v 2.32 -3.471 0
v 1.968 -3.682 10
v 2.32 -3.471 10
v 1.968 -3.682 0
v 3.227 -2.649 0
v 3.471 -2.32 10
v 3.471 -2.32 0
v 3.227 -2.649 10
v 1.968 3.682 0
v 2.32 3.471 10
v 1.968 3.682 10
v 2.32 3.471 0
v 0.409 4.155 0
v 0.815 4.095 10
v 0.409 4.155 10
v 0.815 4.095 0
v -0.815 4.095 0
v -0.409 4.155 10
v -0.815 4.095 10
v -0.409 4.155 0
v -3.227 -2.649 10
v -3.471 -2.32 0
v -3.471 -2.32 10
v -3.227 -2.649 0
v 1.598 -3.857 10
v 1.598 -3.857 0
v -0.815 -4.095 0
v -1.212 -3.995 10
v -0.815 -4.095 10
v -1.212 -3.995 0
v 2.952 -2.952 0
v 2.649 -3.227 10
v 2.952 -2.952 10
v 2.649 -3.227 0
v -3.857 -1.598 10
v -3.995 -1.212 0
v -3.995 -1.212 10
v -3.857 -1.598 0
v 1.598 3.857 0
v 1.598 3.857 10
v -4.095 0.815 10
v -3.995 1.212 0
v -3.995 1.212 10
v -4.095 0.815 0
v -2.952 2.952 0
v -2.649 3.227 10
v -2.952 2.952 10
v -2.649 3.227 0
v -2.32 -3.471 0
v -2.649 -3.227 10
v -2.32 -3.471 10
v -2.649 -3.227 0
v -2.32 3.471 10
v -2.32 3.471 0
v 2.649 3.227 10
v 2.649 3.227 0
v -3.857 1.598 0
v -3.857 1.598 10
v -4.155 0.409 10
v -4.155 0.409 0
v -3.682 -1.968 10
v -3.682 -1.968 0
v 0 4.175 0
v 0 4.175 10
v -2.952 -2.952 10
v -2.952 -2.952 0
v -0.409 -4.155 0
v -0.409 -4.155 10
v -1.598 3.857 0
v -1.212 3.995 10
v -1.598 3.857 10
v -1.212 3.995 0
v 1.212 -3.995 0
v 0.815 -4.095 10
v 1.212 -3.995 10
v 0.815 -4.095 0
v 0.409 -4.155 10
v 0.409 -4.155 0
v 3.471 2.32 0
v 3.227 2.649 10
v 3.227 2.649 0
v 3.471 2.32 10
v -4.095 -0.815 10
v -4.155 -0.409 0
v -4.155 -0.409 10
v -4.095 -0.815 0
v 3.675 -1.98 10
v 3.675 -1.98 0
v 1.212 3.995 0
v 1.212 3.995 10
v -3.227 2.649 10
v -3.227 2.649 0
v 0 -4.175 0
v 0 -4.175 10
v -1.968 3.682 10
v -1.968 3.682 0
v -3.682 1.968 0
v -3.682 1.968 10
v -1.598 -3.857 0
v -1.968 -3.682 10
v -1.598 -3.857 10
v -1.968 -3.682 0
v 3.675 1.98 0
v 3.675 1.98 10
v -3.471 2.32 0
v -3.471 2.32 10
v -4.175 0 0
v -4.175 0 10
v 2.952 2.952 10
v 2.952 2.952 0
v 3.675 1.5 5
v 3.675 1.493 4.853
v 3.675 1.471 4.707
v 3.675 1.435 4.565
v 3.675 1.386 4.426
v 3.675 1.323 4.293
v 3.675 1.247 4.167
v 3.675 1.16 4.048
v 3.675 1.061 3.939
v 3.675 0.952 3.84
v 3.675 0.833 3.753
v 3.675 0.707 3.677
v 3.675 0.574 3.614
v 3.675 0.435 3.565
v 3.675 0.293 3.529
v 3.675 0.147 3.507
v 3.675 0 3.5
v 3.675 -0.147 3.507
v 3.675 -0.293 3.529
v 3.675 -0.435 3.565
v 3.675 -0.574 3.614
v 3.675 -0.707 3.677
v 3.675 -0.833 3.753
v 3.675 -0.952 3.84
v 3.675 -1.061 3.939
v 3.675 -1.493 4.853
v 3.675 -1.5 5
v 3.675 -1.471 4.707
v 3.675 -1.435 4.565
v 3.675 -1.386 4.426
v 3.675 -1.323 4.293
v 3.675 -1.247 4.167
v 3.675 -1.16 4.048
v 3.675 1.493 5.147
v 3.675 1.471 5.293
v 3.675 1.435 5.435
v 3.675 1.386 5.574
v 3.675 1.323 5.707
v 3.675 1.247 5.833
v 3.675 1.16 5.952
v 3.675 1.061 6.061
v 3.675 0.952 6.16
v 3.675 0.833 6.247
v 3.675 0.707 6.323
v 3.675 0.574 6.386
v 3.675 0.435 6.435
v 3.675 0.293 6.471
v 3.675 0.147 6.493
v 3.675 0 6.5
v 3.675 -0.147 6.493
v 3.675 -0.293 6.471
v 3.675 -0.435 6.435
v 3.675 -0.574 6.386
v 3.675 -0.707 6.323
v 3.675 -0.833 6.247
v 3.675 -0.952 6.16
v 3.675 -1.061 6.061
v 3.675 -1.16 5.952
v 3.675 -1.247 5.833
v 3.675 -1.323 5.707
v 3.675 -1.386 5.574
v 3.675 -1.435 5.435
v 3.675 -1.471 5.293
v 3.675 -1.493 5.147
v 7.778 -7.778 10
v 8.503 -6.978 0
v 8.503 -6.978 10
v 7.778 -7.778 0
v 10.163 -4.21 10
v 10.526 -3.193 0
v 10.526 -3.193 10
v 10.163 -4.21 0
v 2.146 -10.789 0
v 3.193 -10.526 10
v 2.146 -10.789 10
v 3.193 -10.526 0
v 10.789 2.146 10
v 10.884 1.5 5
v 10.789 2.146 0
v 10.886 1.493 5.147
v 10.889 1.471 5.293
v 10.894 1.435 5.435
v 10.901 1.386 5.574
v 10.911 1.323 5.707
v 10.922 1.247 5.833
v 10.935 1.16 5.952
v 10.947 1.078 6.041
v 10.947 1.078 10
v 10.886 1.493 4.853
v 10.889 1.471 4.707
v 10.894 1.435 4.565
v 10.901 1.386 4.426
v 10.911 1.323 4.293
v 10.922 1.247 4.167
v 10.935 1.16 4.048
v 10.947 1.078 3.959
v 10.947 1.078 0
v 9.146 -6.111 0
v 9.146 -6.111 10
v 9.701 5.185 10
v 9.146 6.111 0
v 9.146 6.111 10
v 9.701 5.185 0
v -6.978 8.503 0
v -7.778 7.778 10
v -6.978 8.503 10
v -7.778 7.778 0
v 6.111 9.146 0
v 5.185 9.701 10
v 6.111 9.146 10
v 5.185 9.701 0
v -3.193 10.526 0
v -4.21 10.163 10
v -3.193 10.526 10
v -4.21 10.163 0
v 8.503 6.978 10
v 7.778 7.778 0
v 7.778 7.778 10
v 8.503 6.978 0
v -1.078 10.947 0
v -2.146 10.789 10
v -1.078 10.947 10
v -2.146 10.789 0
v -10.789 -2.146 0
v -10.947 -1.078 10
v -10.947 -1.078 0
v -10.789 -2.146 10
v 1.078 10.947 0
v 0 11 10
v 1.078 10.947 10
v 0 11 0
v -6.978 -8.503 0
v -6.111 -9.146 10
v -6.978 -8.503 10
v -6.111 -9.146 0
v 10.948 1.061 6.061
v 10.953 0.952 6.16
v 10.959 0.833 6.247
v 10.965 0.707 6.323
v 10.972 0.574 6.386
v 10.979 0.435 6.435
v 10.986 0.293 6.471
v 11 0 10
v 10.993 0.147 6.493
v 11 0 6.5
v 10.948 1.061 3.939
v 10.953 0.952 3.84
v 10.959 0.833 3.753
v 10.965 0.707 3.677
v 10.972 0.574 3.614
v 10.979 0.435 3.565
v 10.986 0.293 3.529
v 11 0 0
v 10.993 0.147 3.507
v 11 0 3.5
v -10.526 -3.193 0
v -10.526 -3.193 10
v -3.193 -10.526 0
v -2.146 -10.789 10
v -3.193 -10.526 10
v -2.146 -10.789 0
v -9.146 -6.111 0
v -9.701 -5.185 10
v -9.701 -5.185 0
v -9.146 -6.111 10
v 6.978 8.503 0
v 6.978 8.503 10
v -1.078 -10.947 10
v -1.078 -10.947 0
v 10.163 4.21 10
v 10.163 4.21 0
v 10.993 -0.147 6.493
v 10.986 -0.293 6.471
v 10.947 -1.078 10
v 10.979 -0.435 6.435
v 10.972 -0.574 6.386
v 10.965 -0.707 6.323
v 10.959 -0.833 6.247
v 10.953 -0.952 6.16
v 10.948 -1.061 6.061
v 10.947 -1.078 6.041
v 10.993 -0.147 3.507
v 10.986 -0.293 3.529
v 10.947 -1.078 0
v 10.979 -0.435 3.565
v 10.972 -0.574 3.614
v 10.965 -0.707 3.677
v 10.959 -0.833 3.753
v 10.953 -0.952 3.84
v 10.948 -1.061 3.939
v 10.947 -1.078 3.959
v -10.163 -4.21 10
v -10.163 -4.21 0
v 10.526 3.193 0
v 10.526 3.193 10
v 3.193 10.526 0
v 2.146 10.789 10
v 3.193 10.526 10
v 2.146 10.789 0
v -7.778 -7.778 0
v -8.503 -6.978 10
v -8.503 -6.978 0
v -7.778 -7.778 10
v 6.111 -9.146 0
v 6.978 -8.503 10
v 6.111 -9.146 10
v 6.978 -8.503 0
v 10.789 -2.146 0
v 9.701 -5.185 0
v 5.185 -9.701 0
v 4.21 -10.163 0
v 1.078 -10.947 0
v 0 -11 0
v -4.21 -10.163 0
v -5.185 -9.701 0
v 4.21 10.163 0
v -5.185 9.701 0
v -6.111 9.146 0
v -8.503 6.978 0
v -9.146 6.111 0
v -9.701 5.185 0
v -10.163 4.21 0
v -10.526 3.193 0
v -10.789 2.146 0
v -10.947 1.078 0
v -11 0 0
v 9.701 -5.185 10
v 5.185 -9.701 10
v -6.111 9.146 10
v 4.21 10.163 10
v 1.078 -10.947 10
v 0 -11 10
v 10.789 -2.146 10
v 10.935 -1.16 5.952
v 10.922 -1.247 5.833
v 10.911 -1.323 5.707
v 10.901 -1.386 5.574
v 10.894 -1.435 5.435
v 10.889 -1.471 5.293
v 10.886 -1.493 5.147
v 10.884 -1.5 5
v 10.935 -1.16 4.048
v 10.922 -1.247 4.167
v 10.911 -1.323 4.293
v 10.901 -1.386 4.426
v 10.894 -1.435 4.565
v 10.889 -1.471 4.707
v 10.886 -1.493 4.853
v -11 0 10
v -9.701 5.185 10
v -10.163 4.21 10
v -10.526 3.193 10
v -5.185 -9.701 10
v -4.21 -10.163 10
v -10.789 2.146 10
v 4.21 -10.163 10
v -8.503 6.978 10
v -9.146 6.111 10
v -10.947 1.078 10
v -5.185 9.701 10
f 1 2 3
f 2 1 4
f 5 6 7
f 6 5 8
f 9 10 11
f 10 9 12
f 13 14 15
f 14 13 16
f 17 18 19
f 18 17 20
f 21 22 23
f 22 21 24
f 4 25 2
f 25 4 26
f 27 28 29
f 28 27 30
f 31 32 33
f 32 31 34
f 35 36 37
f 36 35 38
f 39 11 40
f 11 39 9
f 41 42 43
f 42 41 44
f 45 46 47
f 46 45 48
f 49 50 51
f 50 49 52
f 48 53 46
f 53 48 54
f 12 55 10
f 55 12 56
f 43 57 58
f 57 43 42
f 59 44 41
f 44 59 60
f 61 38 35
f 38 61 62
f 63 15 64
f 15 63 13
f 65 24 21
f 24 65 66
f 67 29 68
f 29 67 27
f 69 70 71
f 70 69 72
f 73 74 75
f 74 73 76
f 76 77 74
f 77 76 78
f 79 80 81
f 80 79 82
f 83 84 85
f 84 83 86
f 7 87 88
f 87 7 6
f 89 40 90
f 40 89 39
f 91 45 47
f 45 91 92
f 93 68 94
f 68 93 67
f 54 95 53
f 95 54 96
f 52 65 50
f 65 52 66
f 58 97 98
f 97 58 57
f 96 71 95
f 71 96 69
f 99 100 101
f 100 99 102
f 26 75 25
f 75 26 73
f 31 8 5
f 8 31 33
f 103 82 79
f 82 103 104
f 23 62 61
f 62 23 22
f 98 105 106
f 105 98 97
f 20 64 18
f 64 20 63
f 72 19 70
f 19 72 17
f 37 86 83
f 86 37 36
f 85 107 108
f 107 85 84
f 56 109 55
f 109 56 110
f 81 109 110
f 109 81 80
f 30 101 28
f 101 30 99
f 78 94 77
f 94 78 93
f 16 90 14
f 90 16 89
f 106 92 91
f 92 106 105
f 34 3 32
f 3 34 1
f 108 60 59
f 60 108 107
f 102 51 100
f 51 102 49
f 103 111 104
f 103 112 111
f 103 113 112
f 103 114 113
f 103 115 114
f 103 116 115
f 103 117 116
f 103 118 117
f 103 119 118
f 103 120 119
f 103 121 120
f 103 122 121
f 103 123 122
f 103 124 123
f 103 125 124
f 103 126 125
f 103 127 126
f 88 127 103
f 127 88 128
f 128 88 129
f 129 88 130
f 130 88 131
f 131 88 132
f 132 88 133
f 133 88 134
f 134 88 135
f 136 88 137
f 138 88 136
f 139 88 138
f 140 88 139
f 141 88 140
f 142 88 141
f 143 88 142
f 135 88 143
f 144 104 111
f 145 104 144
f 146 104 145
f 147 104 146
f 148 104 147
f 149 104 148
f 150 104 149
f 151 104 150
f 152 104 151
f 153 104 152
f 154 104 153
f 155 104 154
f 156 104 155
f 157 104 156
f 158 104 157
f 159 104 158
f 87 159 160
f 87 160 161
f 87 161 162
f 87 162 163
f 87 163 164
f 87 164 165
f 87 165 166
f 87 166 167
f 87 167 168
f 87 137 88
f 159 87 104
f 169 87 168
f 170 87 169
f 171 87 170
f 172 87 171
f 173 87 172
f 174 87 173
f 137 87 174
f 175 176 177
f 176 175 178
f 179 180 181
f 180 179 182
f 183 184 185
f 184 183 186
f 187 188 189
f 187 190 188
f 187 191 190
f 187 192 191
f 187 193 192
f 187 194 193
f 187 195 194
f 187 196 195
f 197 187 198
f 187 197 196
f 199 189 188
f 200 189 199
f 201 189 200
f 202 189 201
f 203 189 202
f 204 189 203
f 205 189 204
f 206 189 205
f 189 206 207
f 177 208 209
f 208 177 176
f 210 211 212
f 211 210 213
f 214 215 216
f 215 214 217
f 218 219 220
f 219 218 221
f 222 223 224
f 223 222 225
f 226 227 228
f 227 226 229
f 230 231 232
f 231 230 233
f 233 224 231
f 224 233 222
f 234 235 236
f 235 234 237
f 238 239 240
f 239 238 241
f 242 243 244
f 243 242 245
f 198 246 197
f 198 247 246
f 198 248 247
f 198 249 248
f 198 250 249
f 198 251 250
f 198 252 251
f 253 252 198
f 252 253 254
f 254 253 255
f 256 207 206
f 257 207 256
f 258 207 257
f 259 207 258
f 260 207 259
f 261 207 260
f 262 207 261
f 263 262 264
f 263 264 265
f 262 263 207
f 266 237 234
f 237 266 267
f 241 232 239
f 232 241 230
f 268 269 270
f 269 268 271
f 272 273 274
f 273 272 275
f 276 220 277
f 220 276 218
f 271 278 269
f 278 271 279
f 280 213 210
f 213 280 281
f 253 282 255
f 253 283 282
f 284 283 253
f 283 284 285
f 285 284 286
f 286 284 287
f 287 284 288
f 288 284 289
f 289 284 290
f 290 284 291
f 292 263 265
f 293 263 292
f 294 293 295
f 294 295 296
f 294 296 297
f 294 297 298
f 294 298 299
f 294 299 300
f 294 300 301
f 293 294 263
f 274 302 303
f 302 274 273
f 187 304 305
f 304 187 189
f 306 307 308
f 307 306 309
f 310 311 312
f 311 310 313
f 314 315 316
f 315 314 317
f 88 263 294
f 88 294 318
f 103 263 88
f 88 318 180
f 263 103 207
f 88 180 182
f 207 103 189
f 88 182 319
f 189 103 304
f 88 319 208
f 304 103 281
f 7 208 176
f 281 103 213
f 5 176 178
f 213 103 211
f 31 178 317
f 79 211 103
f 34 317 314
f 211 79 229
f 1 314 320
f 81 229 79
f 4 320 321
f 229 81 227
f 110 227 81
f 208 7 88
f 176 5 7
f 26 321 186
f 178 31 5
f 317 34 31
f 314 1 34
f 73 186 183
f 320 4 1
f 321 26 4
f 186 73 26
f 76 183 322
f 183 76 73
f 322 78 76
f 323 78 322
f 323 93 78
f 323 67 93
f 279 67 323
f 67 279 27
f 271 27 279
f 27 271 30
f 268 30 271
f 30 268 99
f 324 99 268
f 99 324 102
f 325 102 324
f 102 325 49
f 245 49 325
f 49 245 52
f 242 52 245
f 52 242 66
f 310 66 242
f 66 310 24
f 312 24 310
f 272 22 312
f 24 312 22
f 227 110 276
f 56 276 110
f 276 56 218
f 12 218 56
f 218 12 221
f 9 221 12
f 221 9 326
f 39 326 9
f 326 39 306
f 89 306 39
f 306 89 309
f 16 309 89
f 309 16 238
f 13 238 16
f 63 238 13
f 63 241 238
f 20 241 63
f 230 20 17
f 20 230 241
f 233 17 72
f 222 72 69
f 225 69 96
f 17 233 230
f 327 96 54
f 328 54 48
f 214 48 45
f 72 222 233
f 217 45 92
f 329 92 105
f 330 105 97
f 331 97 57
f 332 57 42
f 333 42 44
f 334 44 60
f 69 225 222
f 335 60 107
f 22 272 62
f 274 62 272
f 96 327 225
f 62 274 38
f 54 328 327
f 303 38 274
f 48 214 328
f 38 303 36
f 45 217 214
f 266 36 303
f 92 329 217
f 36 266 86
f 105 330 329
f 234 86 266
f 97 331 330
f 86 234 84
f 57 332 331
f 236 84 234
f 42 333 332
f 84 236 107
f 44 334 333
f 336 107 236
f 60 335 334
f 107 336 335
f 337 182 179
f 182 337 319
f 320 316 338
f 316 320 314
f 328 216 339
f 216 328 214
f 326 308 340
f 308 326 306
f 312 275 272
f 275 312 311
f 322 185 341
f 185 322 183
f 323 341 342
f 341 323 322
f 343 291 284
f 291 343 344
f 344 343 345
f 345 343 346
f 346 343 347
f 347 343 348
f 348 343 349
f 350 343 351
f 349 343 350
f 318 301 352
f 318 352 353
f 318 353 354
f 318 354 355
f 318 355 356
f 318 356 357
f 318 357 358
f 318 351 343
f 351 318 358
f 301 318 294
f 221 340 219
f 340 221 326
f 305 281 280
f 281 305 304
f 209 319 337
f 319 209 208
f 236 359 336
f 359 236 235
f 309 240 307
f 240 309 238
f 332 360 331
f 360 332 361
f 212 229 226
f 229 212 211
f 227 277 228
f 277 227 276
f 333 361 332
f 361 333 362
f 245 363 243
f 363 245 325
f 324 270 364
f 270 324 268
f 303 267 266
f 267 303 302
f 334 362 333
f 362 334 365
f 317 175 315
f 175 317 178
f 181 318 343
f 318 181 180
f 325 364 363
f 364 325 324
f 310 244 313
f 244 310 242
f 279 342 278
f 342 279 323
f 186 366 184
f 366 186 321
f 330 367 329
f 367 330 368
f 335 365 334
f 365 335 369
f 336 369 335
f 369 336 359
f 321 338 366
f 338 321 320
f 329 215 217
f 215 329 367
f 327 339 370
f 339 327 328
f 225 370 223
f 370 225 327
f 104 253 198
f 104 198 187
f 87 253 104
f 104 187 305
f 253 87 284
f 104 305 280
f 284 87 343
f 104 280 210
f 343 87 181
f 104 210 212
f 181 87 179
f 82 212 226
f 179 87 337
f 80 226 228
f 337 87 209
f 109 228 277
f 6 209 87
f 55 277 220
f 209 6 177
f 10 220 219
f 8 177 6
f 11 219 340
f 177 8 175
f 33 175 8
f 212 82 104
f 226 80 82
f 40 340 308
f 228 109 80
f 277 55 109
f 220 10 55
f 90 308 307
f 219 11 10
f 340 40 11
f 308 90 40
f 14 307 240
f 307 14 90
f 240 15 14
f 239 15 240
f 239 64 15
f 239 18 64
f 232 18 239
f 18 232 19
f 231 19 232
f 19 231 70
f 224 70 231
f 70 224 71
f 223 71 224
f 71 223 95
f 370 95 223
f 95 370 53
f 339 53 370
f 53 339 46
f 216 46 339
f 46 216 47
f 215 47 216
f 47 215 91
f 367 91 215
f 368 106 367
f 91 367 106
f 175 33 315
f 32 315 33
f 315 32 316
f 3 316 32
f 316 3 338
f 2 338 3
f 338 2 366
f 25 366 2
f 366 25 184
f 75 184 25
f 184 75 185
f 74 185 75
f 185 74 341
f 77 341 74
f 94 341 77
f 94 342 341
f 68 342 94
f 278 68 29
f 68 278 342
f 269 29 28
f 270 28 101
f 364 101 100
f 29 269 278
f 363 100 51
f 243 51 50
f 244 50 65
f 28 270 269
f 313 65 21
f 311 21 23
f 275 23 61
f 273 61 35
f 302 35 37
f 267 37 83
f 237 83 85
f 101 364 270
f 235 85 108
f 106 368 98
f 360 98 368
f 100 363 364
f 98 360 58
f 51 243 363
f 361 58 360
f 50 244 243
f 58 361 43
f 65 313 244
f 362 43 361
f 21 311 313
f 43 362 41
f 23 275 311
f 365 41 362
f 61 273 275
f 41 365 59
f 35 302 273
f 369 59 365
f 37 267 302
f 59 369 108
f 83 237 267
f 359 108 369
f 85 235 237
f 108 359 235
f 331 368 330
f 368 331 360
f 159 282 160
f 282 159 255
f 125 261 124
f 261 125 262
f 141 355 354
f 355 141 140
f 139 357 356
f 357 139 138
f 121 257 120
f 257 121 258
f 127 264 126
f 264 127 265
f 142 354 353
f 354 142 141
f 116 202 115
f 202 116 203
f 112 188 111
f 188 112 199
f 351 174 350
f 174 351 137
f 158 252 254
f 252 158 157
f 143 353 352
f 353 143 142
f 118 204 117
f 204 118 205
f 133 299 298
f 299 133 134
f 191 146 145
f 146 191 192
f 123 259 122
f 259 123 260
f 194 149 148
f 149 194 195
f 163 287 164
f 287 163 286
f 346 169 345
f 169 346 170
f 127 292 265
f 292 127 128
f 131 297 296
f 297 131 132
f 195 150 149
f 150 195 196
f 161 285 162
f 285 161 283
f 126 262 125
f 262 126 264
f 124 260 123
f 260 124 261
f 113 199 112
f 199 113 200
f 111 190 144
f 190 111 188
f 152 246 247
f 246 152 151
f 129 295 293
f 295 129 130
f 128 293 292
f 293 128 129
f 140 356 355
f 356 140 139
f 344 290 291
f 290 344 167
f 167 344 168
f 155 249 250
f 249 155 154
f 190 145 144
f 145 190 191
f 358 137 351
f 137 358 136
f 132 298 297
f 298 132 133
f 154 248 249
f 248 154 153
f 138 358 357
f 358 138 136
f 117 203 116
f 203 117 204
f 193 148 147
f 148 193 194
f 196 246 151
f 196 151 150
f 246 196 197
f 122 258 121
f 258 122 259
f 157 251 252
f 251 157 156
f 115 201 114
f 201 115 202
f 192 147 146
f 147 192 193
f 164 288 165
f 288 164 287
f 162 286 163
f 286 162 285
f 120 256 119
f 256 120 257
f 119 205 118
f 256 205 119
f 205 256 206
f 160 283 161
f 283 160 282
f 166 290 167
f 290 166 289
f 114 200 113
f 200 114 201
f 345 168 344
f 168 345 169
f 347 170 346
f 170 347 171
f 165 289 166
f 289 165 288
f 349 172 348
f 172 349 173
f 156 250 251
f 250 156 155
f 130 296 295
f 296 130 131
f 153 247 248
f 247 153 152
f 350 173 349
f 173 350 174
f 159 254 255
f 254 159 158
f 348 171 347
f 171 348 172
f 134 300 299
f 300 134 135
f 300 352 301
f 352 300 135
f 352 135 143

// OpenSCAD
// Gen-CX — shaft collar with D-flat bore (set screw bears on the flat); print x4
include <parameters.scad>;
$fn = 64;
// D-flat keyed bore: flat faces +X (angle 0 = magnet pocket 0 = index notch)
module dflat_bore(h) {
    intersection() {
        cylinder(d=shaft_bore, h=h);
        translate([-shaft_bore, -shaft_bore, 0]) cube([shaft_bore + dflat_x, 2*shaft_bore, h]);
    }
}

od = 22; h = collar_h; set_d = 3.0;
difference() {
    cylinder(d=od, h=h);
    translate([0, 0, -0.1]) dflat_bore(h + 0.2);
    translate([0, 0, h/2]) rotate([0, 90, 0]) cylinder(d=set_d, h=od);
}
